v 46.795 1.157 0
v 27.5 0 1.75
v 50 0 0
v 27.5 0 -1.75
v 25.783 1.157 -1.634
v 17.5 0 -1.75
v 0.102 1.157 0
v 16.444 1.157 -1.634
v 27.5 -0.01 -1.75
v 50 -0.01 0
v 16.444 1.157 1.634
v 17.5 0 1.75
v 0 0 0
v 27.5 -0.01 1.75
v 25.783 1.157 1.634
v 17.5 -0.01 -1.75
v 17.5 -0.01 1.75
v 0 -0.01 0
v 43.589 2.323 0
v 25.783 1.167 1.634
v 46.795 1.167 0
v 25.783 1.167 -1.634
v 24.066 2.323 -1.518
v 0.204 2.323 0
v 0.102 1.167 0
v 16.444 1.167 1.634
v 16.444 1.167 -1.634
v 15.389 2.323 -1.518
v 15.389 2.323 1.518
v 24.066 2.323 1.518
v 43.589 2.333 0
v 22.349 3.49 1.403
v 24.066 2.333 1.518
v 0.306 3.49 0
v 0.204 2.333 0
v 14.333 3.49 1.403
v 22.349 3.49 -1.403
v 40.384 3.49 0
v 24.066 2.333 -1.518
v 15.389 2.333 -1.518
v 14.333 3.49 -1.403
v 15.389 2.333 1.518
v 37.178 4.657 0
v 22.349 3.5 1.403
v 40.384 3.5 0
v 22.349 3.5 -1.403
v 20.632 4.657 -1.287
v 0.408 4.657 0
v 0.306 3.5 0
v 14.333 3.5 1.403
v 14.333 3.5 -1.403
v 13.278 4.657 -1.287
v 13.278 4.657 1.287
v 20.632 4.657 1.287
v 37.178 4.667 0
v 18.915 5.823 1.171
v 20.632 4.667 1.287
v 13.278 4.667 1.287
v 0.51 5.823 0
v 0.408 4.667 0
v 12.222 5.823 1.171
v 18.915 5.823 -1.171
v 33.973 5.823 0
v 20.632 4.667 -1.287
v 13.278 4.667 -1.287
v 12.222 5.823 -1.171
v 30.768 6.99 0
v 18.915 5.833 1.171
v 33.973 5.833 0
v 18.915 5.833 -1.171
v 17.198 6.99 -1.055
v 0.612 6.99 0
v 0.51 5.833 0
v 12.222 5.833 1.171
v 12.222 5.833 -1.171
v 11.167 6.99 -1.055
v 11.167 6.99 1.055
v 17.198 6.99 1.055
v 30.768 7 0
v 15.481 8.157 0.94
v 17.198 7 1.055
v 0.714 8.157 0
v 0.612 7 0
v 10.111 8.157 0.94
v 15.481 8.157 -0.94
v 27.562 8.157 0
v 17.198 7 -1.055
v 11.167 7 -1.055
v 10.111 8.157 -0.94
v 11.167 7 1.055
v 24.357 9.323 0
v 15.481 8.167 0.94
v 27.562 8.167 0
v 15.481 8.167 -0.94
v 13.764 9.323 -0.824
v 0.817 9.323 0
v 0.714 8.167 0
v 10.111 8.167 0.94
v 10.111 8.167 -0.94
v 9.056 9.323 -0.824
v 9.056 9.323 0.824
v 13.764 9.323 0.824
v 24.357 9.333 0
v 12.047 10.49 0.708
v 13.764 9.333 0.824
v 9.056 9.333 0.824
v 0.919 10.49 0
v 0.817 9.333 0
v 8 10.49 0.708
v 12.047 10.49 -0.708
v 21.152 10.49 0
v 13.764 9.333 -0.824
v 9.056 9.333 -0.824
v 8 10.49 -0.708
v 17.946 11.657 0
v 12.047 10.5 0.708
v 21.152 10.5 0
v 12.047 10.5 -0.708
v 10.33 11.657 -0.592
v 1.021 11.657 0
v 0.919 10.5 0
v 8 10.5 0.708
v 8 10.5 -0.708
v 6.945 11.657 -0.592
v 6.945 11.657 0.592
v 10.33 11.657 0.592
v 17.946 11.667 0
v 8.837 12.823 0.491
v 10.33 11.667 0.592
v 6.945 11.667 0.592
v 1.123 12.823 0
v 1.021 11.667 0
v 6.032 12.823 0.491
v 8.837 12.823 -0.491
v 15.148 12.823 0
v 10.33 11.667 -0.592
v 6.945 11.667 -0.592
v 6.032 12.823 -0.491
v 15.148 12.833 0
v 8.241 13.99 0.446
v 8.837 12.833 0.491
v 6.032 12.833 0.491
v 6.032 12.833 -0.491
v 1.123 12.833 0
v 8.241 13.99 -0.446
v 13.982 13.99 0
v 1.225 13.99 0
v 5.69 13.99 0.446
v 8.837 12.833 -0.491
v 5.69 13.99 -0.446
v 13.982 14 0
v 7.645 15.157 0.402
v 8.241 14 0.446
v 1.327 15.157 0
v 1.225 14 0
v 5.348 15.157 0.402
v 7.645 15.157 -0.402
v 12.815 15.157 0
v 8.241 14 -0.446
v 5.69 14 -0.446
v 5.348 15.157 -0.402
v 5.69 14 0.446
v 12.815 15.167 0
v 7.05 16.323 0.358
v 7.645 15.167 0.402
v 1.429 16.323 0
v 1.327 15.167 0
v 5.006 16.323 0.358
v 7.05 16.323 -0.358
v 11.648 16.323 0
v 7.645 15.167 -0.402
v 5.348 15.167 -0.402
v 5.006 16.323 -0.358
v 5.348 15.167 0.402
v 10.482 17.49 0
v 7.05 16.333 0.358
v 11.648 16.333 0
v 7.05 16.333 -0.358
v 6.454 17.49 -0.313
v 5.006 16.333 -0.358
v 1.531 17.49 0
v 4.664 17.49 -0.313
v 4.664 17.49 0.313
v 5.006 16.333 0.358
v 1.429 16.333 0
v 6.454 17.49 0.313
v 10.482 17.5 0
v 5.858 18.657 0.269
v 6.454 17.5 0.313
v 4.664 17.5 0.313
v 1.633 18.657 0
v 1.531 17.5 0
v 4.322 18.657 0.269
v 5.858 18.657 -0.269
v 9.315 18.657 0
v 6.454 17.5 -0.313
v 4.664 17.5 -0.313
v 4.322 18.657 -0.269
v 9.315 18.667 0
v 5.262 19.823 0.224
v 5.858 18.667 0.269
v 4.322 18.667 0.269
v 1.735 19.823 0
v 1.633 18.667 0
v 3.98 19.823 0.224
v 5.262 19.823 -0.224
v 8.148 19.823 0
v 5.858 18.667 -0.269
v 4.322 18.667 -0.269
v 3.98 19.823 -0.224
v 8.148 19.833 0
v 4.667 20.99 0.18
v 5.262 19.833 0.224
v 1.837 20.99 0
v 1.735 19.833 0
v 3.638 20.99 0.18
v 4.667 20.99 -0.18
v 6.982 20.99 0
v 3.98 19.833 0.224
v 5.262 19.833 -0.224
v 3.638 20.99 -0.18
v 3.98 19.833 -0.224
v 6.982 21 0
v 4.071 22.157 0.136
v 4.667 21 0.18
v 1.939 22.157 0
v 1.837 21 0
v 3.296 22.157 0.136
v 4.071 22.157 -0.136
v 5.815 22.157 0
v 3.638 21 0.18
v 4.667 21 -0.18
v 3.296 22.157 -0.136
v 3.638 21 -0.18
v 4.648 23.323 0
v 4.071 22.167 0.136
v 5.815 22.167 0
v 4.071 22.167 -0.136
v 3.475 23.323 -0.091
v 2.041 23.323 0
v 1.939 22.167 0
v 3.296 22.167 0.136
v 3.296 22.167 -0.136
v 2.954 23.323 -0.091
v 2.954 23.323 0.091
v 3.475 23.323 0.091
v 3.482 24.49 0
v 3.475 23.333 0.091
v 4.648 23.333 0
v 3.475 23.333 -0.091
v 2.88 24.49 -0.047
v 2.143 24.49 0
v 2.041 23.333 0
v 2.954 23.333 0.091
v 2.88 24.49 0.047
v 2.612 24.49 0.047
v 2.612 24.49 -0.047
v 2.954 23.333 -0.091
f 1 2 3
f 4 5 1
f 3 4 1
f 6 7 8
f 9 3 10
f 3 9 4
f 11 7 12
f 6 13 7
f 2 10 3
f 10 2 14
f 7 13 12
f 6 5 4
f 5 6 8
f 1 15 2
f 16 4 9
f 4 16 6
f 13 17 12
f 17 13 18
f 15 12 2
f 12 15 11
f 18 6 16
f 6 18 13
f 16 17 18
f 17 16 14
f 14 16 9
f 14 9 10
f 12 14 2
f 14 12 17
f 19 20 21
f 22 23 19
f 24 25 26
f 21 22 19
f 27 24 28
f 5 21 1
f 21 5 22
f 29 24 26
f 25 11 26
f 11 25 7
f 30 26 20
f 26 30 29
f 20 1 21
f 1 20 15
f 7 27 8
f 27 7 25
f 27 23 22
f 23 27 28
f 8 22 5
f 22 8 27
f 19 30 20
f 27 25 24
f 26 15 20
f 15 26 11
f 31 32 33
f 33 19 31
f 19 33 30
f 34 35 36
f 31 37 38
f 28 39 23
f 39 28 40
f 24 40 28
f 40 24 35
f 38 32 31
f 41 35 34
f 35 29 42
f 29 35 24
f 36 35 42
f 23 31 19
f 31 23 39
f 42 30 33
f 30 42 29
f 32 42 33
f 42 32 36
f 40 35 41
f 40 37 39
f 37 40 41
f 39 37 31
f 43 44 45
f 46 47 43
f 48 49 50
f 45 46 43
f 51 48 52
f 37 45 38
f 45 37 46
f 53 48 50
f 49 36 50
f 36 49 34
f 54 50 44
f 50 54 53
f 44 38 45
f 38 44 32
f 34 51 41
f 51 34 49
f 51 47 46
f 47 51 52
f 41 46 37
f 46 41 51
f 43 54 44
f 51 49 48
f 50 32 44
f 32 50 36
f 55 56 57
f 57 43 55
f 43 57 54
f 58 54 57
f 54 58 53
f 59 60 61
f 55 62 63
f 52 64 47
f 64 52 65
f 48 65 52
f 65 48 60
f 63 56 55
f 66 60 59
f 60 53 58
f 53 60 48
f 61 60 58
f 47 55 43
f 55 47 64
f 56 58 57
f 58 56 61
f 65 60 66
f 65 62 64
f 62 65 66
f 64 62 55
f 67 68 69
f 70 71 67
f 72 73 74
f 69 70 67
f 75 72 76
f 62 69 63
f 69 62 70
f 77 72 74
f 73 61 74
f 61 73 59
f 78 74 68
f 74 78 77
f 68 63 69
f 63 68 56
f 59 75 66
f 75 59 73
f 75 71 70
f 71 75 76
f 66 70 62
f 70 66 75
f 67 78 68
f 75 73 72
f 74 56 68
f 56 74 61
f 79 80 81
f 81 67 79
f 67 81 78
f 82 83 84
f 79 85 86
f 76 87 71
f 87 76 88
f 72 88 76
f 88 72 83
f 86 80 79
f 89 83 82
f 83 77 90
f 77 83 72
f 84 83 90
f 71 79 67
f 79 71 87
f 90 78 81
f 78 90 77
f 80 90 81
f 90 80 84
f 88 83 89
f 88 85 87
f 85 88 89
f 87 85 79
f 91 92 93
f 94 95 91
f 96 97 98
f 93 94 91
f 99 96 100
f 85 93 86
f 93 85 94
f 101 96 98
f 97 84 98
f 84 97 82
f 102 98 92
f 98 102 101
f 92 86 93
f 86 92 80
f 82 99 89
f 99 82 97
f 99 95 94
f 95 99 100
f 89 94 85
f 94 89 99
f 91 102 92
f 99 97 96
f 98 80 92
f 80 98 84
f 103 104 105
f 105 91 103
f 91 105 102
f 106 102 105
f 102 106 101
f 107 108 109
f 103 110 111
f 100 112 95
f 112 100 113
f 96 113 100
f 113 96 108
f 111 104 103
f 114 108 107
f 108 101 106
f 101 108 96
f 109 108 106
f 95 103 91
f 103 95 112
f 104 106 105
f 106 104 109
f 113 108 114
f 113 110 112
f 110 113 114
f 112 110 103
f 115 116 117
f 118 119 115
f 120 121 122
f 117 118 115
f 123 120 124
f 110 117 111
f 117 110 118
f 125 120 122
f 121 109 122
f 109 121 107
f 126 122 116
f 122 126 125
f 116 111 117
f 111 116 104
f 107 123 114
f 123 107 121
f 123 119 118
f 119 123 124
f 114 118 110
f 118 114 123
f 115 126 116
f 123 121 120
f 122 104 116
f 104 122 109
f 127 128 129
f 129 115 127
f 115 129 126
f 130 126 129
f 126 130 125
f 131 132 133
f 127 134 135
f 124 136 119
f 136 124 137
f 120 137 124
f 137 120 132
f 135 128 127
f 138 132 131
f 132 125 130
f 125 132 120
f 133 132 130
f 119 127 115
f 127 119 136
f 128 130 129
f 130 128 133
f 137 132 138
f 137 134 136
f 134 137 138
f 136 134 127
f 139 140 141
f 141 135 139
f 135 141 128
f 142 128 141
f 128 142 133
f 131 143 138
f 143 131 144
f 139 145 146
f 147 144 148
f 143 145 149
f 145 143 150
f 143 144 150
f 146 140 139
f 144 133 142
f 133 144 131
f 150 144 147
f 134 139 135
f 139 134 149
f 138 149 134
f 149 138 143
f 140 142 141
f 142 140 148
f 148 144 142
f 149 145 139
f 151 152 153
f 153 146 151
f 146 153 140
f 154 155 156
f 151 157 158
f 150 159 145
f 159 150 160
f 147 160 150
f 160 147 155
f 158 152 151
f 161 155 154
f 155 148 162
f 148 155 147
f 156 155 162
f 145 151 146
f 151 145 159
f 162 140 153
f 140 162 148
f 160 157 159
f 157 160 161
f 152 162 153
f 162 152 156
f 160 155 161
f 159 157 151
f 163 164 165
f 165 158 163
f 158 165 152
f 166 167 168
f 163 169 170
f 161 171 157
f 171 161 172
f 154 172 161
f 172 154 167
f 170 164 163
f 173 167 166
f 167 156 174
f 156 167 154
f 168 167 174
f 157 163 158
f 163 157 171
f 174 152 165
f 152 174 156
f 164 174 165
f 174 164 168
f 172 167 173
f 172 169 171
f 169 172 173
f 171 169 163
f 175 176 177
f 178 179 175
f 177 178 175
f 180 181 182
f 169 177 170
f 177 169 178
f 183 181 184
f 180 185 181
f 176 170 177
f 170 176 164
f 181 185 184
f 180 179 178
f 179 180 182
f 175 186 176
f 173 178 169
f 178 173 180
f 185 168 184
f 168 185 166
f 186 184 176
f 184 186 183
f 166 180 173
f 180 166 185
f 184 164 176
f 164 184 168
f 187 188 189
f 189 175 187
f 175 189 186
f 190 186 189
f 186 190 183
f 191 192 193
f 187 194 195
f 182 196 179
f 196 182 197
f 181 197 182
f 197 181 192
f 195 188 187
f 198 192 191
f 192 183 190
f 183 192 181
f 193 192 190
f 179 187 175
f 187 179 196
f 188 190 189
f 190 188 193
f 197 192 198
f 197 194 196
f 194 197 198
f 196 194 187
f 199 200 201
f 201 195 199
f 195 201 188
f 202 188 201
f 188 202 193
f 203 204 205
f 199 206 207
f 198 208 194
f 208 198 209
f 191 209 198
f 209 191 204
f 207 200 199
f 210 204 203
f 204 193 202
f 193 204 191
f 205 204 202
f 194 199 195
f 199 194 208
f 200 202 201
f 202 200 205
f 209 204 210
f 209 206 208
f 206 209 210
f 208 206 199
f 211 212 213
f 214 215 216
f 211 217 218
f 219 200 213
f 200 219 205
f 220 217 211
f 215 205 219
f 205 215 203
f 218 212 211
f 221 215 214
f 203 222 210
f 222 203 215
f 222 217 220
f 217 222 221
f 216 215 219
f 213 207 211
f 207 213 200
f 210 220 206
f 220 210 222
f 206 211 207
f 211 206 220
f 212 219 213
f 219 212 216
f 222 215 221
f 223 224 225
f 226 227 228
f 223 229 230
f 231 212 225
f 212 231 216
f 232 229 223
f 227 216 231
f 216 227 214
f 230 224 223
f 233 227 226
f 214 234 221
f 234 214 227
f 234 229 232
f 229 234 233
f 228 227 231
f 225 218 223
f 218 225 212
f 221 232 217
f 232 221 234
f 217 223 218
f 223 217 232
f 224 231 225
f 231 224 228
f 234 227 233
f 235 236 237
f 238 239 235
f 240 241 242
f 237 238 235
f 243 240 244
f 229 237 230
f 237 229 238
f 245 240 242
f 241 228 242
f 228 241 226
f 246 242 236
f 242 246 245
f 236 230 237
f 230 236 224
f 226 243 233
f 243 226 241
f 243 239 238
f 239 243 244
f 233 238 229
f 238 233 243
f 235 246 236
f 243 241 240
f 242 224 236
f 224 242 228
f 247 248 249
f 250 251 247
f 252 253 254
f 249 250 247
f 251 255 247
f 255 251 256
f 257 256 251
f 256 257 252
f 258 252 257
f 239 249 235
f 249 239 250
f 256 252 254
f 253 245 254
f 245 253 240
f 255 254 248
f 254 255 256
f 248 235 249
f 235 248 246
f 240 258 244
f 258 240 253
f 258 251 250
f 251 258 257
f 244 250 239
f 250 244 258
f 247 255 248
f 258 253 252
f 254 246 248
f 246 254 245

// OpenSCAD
// =============================================================
// AIM-9 Sidewinder style CANARD fin
// - Double-delta planform (kinked leading edge)
// - Symmetric hexagonal (double-wedge) airfoil
// - No mounting features (add yours later)
// =============================================================
// Coordinate system:
//   X = chordwise  (LE near +X, TE near origin)
//   Y = spanwise   (root at Y=0, tip at +Y)
//   Z = thickness  (symmetric about Z=0)
// =============================================================

/* [Planform] */
root_chord       = 50;     // chord at the root (mm)
tip_chord        = 4;      // small flat at tip (set 1-2mm for sharp tip)
span             = 28;     // root-to-tip distance (mm)

// Double-delta leading edge
kink_span_frac   = 0.45;   // fraction of span where LE sweep changes
inboard_sweep    = 70;     // inboard LE sweep (deg)
outboard_sweep   = 45;     // outboard LE sweep (deg)
trailing_sweep   = 5;      // small forward sweep on TE (deg)

/* [Airfoil - symmetric hexagonal / double-wedge] */
thickness_pct    = 0.07;   // max thickness as fraction of local chord
flat_start_pct   = 0.35;   // chord fraction where flat top begins
flat_end_pct     = 0.55;   // chord fraction where flat top ends

$fn = 64;

// =============================================================
// Planform helpers
// =============================================================
function le_x_at_y(y) =
    y <= span*kink_span_frac
        ? root_chord - y * tan(inboard_sweep)
        : (root_chord - span*kink_span_frac * tan(inboard_sweep))
          - (y - span*kink_span_frac) * tan(outboard_sweep);

function te_x_at_y(y) = 0 + y * tan(trailing_sweep);

// =============================================================
// Hexagonal airfoil cross-section
// =============================================================
module hex_airfoil_2d(c) {
    t = c * thickness_pct;
    x1 = c * flat_start_pct;
    x2 = c * flat_end_pct;
    polygon([
        [0,   0],
        [x1,  t/2],
        [x2,  t/2],
        [c,   0],
        [x2, -t/2],
        [x1, -t/2]
    ]);
}

// =============================================================
// Fin solid - stack airfoils along span and hull adjacent ones
// =============================================================
module fin() {
    n_stations = 24;
    for (i = [0 : n_stations-1]) {
        y0 = i * span / n_stations;
        y1 = (i+1) * span / n_stations;
        c0 = le_x_at_y(y0) - te_x_at_y(y0);
        c1 = le_x_at_y(y1) - te_x_at_y(y1);
        x0 = te_x_at_y(y0);
        x1 = te_x_at_y(y1);
        if (c0 > 0.5 && c1 > 0.5) {
            hull() {
                translate([x0, y0, 0])
                    rotate([90, 0, 0])
                        linear_extrude(height = 0.01)
                            hex_airfoil_2d(c0);
                translate([x1, y1 - 0.01, 0])
                    rotate([90, 0, 0])
                        linear_extrude(height = 0.01)
                            hex_airfoil_2d(c1);
            }
        }
    }
}

// =============================================================
// Render
// =============================================================
fin();
